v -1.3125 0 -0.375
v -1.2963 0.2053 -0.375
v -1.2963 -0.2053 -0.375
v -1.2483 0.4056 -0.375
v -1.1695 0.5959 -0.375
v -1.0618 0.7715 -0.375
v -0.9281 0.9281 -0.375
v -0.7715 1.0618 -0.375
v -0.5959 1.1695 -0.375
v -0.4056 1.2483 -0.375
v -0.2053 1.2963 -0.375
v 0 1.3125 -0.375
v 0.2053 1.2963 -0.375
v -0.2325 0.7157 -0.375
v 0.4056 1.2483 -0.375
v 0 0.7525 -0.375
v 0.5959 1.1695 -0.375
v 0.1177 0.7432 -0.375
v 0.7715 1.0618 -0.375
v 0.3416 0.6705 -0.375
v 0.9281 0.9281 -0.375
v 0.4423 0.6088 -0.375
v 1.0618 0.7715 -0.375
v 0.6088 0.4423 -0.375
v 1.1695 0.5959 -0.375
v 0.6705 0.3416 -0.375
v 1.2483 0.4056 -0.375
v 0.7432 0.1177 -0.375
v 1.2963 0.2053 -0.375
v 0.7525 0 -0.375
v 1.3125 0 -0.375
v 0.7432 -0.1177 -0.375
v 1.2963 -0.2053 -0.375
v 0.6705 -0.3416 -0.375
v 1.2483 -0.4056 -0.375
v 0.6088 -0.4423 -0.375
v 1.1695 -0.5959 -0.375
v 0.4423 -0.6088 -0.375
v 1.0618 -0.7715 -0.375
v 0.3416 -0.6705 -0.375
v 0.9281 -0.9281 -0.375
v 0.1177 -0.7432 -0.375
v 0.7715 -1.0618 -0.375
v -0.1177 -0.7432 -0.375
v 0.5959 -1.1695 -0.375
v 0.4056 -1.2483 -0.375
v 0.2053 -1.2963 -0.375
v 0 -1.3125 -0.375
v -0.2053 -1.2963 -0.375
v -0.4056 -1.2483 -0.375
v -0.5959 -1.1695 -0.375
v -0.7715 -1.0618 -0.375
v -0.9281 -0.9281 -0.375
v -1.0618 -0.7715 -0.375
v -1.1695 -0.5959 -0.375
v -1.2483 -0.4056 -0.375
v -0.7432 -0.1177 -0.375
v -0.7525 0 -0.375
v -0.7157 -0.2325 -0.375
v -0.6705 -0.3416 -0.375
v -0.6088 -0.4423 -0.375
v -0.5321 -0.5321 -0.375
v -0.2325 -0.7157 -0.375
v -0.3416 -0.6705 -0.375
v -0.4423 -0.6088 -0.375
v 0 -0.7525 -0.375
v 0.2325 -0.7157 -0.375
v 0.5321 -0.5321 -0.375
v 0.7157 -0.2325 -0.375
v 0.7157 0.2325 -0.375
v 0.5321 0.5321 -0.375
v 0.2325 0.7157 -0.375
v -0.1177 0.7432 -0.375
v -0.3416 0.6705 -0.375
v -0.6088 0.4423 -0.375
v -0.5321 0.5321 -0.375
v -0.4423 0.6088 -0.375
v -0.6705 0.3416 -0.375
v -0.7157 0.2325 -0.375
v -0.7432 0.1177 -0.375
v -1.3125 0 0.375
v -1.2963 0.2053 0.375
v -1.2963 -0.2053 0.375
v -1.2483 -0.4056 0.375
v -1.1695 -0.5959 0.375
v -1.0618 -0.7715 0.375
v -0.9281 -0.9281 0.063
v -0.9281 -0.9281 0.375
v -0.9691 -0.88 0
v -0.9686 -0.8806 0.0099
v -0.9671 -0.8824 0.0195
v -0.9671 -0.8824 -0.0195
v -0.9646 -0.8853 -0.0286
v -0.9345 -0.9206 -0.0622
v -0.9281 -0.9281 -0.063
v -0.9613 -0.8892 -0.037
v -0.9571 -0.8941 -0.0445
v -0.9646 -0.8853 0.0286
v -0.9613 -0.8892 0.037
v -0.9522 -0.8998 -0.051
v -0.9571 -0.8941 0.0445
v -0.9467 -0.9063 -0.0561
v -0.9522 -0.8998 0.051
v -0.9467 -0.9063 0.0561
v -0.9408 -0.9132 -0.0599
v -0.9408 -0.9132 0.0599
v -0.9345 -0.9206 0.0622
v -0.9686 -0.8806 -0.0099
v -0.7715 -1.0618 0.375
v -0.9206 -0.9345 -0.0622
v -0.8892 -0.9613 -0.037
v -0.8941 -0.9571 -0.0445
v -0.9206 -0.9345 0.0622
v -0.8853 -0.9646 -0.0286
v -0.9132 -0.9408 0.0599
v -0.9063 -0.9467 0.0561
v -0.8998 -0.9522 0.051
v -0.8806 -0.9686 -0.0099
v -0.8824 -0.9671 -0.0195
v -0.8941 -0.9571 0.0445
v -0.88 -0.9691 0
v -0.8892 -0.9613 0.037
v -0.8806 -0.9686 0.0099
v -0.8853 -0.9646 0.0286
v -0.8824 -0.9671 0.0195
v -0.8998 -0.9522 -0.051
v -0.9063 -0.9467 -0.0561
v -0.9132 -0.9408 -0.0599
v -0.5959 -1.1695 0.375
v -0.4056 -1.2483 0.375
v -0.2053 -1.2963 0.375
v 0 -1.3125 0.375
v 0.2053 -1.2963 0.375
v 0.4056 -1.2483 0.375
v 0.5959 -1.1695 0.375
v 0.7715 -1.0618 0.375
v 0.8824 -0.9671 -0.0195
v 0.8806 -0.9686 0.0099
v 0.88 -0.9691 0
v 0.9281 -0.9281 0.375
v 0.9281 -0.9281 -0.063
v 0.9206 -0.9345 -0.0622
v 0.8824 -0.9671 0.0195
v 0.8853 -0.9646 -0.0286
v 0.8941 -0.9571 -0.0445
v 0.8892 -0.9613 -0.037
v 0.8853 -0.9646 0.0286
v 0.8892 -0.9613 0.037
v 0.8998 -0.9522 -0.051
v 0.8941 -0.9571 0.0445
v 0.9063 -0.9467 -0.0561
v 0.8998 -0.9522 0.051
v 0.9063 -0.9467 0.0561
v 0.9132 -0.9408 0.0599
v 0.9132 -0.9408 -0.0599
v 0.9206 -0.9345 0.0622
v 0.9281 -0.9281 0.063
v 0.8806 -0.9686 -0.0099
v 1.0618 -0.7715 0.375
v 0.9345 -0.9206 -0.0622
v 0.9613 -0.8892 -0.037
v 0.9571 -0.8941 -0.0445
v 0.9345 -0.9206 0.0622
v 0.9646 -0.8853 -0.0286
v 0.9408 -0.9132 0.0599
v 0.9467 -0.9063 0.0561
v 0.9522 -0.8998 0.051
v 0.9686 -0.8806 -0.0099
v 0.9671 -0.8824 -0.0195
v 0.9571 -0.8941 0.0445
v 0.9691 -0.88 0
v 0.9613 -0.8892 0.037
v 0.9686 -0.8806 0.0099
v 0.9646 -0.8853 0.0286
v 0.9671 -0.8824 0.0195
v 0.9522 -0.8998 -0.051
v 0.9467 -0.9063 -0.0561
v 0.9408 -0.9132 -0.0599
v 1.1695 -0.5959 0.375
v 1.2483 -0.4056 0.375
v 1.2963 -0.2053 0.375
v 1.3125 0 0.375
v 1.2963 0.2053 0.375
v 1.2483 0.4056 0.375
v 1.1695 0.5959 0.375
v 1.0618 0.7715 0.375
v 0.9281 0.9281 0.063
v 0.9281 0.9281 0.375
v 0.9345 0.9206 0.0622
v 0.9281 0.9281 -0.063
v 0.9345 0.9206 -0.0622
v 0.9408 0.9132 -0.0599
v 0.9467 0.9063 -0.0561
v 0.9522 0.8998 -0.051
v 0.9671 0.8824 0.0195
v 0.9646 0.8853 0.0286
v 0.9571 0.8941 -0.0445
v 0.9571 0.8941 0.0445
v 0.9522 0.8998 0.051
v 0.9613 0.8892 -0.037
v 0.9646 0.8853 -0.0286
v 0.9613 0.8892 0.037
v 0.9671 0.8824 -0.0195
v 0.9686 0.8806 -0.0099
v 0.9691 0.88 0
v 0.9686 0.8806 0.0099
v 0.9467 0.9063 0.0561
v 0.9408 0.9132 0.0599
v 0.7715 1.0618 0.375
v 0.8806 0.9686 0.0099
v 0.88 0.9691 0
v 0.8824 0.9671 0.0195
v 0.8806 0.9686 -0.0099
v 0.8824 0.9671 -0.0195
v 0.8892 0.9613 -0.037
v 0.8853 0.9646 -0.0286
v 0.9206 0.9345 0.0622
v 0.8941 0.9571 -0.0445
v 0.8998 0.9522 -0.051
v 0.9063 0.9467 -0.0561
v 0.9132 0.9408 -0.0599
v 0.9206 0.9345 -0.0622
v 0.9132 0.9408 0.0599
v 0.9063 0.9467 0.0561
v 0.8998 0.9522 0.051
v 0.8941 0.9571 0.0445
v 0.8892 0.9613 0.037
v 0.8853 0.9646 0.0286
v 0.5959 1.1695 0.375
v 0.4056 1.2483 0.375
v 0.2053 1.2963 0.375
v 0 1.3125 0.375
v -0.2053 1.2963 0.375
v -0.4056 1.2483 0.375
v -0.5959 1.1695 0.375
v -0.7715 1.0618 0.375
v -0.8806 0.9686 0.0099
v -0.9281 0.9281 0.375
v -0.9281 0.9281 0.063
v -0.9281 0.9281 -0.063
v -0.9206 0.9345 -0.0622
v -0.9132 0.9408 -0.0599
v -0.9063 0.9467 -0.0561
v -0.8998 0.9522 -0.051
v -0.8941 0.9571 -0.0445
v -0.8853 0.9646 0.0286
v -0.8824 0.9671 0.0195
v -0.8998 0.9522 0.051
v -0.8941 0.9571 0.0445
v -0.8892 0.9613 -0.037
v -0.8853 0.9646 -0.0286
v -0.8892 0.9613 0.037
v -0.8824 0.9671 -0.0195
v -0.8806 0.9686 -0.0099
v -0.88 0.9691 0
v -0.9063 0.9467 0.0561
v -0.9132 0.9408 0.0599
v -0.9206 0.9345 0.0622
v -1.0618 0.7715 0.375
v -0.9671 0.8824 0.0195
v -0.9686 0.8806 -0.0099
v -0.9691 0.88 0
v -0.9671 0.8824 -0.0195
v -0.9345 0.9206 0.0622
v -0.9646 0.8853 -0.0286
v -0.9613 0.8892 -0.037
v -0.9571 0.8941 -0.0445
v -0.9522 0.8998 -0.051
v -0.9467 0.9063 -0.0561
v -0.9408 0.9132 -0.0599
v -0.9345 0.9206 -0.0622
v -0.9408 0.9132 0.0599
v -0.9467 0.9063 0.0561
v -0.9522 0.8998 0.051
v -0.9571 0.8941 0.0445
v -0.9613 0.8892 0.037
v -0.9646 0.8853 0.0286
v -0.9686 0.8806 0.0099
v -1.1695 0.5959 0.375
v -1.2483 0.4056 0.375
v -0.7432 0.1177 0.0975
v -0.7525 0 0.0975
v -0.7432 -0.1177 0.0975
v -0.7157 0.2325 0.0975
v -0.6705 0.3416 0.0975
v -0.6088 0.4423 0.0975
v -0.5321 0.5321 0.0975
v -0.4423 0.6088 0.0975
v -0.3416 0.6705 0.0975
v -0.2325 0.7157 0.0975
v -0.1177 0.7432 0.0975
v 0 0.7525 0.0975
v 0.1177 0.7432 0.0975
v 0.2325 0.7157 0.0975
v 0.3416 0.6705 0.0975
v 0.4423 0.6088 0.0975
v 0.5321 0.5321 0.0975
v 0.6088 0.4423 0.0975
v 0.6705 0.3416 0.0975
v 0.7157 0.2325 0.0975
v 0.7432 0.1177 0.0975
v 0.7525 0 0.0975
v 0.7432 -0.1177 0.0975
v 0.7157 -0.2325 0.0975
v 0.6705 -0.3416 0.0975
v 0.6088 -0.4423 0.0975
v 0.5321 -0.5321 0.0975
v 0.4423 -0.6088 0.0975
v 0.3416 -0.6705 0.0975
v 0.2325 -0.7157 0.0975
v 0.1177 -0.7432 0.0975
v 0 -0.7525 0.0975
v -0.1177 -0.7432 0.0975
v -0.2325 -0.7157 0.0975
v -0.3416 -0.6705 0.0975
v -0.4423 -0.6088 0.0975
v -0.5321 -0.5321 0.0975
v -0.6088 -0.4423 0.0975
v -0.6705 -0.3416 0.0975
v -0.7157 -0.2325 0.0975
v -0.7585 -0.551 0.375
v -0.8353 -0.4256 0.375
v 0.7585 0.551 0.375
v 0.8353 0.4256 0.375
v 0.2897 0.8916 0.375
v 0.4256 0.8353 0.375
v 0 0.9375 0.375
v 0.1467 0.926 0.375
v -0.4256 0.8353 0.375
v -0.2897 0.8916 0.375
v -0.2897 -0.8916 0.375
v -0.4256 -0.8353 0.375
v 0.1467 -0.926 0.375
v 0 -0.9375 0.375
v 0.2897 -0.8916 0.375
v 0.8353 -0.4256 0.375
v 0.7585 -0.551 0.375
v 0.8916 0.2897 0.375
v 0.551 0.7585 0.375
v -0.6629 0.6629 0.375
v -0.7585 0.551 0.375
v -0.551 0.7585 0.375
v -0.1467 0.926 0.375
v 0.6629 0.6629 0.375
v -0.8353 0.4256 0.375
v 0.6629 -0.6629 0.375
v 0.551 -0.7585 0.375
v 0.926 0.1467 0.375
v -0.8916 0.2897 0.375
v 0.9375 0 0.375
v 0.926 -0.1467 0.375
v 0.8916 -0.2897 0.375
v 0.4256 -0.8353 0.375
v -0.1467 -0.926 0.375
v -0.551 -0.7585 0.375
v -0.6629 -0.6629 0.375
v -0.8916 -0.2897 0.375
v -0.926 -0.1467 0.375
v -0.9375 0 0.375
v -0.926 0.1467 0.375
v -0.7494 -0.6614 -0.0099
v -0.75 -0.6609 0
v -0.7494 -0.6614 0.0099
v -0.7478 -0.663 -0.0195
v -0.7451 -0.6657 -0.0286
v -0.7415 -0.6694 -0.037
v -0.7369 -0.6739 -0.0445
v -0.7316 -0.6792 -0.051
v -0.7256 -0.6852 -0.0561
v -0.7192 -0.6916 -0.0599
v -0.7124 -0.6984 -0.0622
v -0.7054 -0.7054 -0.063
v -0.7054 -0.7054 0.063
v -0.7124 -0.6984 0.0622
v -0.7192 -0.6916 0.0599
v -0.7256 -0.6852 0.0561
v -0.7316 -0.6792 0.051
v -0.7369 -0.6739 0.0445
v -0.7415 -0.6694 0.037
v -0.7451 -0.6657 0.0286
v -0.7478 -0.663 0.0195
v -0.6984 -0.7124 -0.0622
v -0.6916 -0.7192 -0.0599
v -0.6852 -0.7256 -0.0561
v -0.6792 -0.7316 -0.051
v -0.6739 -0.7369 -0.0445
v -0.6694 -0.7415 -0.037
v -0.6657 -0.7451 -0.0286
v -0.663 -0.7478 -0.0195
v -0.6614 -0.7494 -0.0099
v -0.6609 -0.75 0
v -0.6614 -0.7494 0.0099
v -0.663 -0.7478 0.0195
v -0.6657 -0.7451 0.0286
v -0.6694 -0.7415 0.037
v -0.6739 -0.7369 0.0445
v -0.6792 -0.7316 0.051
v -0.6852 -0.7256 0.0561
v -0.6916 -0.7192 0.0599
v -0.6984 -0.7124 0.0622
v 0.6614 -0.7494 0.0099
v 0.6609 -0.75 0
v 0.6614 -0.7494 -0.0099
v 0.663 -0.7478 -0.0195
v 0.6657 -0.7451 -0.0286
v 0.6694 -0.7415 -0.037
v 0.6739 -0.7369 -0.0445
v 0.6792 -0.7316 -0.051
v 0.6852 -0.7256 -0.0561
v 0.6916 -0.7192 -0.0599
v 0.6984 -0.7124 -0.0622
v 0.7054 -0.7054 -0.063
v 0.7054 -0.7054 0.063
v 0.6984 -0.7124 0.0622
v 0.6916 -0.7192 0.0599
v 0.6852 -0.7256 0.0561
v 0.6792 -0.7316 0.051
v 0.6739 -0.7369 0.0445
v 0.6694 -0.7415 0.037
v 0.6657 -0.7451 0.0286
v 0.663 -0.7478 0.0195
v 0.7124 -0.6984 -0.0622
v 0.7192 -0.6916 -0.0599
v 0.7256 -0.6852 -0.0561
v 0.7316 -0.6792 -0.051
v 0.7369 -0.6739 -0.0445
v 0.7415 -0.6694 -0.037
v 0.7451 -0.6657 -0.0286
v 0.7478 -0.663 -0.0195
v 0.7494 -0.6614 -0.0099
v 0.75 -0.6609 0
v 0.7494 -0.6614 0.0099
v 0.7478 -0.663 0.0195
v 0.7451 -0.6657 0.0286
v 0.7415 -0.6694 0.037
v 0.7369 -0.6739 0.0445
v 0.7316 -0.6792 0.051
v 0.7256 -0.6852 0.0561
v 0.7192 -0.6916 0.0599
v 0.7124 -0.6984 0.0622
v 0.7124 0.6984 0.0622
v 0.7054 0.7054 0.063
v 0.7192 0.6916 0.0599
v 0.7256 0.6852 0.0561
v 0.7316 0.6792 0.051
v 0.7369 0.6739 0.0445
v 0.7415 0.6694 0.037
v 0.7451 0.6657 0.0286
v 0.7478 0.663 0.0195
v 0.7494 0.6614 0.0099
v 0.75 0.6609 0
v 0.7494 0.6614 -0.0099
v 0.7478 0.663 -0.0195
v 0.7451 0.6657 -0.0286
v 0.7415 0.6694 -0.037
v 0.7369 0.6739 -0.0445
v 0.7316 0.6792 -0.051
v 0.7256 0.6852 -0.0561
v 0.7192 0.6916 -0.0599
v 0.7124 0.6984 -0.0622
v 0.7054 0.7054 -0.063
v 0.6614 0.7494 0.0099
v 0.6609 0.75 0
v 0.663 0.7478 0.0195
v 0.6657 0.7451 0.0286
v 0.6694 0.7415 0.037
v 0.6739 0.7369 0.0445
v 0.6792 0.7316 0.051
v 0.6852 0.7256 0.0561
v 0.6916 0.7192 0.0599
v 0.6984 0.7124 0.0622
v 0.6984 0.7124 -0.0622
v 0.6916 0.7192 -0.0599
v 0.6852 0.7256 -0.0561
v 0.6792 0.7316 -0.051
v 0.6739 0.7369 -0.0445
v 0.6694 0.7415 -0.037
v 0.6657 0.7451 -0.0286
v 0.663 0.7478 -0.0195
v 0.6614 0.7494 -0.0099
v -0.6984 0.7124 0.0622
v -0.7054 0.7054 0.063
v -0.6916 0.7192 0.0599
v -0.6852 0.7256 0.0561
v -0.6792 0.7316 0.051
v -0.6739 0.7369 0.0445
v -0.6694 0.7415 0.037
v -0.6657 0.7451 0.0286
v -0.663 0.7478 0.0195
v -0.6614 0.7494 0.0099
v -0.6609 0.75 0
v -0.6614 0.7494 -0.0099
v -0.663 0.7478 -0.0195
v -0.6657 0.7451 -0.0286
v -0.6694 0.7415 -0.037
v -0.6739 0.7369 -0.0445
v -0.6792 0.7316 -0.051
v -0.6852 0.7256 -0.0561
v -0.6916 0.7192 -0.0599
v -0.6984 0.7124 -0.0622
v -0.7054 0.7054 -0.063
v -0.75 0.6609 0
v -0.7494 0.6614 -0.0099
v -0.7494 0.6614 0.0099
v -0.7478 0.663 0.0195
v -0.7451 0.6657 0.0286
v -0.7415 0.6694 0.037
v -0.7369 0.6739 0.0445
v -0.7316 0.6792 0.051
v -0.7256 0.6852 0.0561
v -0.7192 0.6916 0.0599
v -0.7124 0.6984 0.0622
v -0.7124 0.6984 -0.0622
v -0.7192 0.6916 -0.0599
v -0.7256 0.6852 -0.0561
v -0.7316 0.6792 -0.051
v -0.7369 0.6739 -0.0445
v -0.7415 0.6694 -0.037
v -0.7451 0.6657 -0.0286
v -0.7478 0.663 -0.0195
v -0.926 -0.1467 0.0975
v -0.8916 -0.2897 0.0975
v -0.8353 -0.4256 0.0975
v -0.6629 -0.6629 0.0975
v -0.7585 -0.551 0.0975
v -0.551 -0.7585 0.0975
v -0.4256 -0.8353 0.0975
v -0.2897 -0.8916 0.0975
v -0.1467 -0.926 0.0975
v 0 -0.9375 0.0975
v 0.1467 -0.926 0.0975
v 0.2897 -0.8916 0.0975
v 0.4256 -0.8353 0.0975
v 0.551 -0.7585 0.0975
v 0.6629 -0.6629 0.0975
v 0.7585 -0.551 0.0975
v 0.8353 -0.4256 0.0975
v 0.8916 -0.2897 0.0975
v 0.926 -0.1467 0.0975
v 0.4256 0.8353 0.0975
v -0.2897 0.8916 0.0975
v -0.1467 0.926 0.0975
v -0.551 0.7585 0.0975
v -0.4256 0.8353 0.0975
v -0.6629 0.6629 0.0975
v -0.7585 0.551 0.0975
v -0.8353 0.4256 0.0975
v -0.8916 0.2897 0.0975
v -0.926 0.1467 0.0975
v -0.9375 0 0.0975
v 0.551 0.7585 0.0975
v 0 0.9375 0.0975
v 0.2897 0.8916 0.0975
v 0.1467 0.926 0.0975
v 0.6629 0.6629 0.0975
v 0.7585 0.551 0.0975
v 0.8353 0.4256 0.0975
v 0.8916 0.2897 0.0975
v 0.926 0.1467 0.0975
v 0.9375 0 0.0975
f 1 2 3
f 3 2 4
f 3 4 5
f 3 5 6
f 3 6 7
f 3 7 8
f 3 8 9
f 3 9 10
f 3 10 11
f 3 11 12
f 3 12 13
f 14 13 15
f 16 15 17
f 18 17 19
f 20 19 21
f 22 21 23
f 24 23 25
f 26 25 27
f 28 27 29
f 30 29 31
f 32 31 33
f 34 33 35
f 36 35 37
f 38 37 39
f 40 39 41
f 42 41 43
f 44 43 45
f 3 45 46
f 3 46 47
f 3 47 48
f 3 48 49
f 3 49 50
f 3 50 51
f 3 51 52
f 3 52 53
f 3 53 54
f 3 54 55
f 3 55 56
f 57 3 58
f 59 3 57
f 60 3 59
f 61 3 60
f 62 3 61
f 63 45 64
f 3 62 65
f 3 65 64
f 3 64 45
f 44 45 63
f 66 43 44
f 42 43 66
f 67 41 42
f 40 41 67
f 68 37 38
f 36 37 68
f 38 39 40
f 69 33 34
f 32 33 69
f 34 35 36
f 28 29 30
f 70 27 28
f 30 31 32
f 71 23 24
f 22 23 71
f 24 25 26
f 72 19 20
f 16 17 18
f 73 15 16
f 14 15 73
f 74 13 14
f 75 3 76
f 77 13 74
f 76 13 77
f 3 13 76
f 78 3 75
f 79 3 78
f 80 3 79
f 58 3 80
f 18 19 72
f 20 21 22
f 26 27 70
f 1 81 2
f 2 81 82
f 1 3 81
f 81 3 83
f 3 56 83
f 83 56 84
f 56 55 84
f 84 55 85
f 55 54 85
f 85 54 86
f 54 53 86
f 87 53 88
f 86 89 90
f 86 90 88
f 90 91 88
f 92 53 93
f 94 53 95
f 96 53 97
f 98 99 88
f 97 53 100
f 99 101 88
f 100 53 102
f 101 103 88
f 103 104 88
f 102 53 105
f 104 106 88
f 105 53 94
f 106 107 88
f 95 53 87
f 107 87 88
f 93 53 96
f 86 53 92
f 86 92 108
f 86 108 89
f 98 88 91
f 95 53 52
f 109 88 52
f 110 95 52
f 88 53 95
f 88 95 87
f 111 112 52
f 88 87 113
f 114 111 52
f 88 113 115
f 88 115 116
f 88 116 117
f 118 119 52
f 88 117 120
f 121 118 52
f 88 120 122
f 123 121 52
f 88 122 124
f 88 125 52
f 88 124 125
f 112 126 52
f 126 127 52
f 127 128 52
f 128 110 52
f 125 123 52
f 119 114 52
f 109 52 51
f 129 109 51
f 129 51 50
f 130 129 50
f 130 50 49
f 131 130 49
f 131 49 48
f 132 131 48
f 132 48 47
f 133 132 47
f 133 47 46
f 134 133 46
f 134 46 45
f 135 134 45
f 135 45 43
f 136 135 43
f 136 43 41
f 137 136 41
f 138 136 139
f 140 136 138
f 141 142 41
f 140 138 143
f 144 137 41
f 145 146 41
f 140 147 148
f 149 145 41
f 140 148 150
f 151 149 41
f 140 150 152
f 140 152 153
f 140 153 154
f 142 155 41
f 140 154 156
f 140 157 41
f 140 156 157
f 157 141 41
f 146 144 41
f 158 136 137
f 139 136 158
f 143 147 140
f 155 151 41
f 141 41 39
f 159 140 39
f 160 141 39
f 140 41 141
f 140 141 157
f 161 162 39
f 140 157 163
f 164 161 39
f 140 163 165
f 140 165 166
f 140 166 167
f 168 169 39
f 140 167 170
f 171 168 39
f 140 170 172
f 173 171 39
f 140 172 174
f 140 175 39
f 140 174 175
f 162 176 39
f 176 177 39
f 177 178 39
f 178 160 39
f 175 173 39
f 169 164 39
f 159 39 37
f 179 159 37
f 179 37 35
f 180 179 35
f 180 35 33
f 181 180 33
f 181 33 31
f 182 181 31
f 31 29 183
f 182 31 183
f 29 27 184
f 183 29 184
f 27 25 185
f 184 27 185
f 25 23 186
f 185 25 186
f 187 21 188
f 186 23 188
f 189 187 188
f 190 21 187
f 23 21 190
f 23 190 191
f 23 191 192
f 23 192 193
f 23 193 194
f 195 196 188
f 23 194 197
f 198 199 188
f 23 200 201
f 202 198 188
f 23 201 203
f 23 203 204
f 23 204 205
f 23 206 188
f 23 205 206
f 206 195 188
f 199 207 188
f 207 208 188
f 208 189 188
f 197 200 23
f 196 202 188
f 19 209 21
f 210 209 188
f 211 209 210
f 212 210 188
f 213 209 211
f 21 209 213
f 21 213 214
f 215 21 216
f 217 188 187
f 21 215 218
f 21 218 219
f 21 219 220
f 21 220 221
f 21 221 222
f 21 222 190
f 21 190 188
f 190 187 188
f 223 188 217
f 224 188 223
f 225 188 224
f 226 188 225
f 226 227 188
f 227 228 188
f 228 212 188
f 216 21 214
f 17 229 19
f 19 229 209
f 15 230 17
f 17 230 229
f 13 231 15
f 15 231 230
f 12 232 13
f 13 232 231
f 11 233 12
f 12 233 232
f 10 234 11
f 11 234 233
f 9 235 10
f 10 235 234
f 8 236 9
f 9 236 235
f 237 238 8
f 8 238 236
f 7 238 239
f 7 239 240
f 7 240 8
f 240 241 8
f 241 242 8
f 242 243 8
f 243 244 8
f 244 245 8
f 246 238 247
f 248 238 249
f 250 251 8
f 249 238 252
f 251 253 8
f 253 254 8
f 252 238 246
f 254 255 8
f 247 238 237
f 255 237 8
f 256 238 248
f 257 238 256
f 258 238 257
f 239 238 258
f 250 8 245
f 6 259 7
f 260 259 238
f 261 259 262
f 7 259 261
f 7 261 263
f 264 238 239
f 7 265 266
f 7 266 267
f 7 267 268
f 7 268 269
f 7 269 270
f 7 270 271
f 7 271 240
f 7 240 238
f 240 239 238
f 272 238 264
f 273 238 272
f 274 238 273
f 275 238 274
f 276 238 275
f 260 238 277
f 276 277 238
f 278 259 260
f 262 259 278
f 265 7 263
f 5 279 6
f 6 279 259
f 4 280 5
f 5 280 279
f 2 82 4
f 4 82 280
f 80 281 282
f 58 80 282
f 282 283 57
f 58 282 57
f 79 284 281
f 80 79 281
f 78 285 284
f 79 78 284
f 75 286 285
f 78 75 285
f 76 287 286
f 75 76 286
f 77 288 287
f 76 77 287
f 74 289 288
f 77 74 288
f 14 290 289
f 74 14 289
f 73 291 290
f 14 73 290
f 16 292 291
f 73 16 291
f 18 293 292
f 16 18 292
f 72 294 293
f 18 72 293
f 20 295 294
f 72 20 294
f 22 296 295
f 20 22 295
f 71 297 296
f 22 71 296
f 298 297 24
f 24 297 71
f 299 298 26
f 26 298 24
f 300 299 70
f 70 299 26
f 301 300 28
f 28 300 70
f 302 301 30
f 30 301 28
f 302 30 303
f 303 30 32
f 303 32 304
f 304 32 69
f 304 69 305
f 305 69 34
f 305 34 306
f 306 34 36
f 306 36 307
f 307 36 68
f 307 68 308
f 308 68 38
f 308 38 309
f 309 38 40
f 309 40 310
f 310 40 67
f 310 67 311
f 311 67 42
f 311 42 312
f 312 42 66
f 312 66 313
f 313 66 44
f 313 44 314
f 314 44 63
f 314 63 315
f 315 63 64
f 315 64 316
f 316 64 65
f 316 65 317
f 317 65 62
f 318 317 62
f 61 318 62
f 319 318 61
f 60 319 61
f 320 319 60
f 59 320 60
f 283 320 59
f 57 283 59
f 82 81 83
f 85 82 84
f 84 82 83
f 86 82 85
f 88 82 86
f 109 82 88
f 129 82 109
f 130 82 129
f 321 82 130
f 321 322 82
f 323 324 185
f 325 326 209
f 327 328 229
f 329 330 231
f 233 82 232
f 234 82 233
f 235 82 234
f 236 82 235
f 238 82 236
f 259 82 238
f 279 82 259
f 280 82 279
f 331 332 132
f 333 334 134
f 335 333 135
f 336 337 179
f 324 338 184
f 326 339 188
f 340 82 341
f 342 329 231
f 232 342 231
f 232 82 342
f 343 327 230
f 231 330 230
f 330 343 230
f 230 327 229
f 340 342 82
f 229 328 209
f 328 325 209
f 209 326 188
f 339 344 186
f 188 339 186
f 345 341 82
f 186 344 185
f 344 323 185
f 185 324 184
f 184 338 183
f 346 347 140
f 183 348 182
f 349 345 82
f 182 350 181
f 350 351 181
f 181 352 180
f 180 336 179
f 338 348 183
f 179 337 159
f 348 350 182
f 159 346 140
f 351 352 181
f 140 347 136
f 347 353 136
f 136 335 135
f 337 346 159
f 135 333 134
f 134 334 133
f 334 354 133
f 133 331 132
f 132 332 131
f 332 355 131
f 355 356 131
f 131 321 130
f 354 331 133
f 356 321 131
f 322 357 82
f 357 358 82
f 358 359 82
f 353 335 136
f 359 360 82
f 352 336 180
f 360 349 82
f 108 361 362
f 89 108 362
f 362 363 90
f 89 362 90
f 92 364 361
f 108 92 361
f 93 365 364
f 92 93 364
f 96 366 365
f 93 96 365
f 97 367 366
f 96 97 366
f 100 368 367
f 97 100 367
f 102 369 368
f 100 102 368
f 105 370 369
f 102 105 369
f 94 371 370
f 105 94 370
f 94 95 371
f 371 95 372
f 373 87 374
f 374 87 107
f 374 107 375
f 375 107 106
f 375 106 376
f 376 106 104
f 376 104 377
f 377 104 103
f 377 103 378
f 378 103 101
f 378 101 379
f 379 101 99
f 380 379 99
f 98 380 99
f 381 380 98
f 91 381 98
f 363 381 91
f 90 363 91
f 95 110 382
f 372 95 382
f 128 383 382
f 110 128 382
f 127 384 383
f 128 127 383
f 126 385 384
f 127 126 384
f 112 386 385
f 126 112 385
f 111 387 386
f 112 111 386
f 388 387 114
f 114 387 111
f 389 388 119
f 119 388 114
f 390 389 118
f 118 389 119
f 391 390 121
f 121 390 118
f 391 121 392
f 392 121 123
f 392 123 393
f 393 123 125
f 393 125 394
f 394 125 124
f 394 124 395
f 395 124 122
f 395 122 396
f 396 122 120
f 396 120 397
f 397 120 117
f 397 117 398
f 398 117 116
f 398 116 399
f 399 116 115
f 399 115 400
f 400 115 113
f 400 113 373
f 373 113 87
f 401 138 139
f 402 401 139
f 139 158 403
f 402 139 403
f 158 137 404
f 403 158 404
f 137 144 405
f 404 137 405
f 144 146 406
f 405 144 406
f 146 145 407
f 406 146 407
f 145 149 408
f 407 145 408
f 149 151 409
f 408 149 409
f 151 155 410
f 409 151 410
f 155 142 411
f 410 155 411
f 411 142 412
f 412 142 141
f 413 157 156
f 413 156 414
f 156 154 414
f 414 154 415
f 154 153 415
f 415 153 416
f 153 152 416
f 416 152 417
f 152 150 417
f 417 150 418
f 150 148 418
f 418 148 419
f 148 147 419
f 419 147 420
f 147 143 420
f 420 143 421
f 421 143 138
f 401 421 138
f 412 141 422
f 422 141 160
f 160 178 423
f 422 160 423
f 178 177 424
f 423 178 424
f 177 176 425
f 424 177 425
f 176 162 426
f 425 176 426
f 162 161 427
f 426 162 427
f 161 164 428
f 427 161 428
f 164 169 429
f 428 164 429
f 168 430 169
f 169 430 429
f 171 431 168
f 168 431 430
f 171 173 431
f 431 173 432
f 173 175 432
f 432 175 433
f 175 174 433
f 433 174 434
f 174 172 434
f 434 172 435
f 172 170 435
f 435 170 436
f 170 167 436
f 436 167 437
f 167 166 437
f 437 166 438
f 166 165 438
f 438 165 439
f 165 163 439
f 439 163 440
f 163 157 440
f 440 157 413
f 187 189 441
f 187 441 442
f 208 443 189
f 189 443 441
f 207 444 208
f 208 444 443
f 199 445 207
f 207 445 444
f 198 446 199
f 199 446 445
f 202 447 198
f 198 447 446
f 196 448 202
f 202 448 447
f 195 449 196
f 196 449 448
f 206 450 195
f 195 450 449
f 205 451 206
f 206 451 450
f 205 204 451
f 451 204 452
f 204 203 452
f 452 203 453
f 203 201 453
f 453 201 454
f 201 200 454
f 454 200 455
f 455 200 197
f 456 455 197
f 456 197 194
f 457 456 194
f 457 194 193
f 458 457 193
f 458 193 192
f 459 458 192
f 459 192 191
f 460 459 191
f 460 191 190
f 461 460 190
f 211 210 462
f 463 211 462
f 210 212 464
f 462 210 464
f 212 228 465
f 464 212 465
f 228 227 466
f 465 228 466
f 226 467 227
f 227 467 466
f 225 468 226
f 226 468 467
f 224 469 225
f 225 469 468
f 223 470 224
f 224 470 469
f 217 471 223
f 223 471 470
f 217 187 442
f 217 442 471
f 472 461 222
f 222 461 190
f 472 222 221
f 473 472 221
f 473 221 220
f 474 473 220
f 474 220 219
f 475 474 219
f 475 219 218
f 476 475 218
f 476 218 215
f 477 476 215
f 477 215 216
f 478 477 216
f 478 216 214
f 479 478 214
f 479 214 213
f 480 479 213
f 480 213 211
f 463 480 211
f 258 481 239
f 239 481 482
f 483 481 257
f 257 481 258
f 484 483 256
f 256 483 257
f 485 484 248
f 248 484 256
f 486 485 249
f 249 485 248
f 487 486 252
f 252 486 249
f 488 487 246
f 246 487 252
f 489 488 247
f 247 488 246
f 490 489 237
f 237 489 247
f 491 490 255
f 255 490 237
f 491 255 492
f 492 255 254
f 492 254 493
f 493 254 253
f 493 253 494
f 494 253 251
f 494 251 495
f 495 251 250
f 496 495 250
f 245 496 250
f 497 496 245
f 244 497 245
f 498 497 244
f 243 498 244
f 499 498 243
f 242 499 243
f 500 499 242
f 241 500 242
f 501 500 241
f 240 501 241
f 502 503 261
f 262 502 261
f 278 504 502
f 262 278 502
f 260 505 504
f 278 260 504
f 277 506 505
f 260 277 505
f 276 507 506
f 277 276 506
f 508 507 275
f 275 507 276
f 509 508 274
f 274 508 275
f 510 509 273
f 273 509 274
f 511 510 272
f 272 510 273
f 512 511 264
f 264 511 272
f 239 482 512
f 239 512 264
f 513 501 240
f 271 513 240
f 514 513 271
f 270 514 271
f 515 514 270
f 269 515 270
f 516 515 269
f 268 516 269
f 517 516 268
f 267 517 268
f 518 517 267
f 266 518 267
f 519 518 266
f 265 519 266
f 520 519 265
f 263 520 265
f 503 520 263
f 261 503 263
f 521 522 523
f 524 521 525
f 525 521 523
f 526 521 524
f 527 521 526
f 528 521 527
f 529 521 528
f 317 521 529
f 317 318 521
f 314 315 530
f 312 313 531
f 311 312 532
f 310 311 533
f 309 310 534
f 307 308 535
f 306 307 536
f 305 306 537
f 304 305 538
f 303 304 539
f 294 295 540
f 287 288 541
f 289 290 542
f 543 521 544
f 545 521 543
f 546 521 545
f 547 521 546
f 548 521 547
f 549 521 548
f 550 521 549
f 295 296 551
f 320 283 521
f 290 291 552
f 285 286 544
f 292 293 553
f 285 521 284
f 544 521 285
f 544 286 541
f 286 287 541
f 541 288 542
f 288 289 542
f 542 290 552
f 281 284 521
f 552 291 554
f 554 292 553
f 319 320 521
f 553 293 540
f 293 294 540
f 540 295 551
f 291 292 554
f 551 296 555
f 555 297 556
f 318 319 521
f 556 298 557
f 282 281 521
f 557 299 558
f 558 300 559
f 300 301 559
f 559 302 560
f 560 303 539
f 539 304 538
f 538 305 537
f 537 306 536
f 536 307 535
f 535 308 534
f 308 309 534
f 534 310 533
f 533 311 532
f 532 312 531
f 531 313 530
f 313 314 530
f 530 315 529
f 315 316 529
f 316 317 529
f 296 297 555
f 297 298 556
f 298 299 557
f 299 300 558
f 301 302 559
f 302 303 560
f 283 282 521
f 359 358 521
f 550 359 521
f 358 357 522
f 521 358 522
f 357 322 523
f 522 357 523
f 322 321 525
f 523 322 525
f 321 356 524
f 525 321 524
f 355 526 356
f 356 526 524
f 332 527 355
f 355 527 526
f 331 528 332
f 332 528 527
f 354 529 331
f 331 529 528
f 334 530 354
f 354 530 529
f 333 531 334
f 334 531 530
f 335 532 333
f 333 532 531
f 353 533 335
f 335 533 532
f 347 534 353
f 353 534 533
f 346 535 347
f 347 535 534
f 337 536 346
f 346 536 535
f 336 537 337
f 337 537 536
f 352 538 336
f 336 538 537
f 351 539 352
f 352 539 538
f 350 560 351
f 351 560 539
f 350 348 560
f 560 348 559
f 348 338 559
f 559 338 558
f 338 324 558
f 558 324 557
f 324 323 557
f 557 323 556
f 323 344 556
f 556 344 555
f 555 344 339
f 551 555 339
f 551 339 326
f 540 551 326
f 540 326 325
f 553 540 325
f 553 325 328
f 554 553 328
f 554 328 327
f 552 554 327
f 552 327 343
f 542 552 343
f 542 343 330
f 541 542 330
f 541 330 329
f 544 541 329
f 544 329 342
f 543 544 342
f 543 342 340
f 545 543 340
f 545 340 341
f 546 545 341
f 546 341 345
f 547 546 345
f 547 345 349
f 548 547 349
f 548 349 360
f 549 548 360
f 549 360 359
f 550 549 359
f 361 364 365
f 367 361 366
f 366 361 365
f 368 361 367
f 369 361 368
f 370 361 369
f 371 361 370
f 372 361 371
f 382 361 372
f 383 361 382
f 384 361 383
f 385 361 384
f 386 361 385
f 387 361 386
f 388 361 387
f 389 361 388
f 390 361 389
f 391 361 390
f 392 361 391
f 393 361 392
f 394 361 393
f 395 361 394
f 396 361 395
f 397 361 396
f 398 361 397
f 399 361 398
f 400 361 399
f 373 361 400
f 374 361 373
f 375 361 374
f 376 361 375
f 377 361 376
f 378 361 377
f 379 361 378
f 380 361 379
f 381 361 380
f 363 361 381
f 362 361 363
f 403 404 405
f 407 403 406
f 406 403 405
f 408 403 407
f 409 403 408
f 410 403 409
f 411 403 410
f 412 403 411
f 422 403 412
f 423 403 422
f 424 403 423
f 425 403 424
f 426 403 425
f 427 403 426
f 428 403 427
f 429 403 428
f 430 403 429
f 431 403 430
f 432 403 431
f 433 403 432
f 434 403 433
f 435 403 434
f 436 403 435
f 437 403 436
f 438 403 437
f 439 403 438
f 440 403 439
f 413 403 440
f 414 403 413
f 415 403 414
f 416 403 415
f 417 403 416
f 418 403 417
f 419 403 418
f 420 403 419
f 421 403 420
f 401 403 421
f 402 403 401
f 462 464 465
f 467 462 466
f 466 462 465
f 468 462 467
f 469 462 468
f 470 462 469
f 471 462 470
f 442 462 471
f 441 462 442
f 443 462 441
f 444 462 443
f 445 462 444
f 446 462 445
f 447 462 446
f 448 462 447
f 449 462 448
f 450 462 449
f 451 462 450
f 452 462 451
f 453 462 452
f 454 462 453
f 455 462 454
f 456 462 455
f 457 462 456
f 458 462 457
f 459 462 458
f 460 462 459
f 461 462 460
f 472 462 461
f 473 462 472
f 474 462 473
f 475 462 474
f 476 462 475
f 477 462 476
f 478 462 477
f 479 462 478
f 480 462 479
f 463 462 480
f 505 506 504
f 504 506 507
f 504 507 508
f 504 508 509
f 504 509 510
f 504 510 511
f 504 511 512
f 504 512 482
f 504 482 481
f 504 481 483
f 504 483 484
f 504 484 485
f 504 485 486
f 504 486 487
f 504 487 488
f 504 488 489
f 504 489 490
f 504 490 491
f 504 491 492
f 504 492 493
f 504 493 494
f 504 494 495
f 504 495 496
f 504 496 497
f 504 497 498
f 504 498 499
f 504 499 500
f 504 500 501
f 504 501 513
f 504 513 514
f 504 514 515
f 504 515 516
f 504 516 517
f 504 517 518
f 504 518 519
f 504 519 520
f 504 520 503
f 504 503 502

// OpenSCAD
// file: mast.scad
/*
 * Antenna Rotator 16 kg-m
 * Copyright 2012 John Pritchard
 *
 * This program is free software: you can redistribute it and/or modify
 * it under the terms of the GNU General Public License as published by
 * the Free Software Foundation, either version 3 of the License, or
 * (at your option) any later version.
 *
 * This program is distributed in the hope that it will be useful,
 * but WITHOUT ANY WARRANTY; without even the implied warranty of
 * MERCHANTABILITY or FITNESS FOR A PARTICULAR PURPOSE.  See the
 * GNU General Public License for more details.
 *
 * You should have received a copy of the GNU General Public License
 * along with this program.  If not, see <http://www.gnu.org/licenses/>.
 */

/*
 * units = inches
 */


mast_bearing_height = 0.42;

/*
 * LM67048 Tapered Bearing and L44610 Cup: 1.25 ID, 1.98 OD
 */
module mast_bearing(){
	difference(){
		cylinder(r = 0.990, h = mast_bearing_height, center = true, $fn = resolution);
		cylinder(r = 0.625, h = mast_bearing_height, center = true, $fn = resolution);
	}
}

mast_block_height = 0.75;

/*
 * Turn 2" Round 6061 to (2.0-mechtol) OD
 */
module mast_block(){
	/*
	 * TODO 
	 */
	cylinder(r = (2.0-mechtol)/2, h = mast_block_height, center = true, $fn = resolution);
}
// file: head.scad
/*
 * Antenna Rotator 16 kg-m
 * Copyright 2012 John Pritchard
 *
 * This program is free software: you can redistribute it and/or modify
 * it under the terms of the GNU General Public License as published by
 * the Free Software Foundation, either version 3 of the License, or
 * (at your option) any later version.
 *
 * This program is distributed in the hope that it will be useful,
 * but WITHOUT ANY WARRANTY; without even the implied warranty of
 * MERCHANTABILITY or FITNESS FOR A PARTICULAR PURPOSE.  See the
 * GNU General Public License for more details.
 *
 * You should have received a copy of the GNU General Public License
 * along with this program.  If not, see <http://www.gnu.org/licenses/>.
 */

/*
 * units = inches
 */

head_bearing_height = 0.5625;

head_block_od = 2.625;

head_block_height = 0.75;

head_block_gearmotor_clearance = 0.1;

head_bearing_spacer_height = 1.5;

head_tube_od = 3.0;

head_tube_id = 2.625;

head_tube_height = (7.87+head_block_height-head_block_gearmotor_clearance);

head_tube_offset = -((head_tube_height/2)-((head_block_height)+(head_bearing_spacer_height/2)+(head_bearing_height)+(2*mechtol)));

head_block_support_offset = -((head_block_height/2)+(gearmotor_body_height-(2*head_block_gearmotor_clearance))+(head_block_height)+(head_bearing_spacer_height/2)+(head_bearing_height)+(2*mechtol));

head_block_mount_offset = -((head_block_height/2)+(head_bearing_spacer_height/2)+(head_bearing_height)+(2*mechtol));

head_bearing_offset = ((head_bearing_spacer_height/2)+(head_bearing_height/2)+mechtol);

head_block_shaft_offset = ((head_block_height/2)+(head_bearing_spacer_height/2)+(head_bearing_height)+(2*mechtol));

echo("head tube height",head_tube_height);
echo("head tube offset",head_tube_offset);
echo("head block support offset",head_block_support_offset);
echo("head block mount offset",head_block_mount_offset);
echo("head bearing offset",head_bearing_offset);
echo("head block shaft offset",head_block_shaft_offset);

/*
 * R24-2RS Radial Bearing: 1.5 ID, 2.625 OD, 0.5625 H
 */
module head_bearing(){
	difference(){
		cylinder(r = (2.625/2), h = head_bearing_height, center = true, $fn = resolution);
		cylinder(r = (1.5/2), h = head_bearing_height, center = true, $fn = resolution);
	}
}

/*
 * Turn 3" Round 6061 to 2.625 OD
 */
module head_block(){

	cylinder(r = head_block_od/2, h = head_block_height, center = true, $fn = resolution);
}
/*
 * Secondary (outboard) motor mount
 */
module head_block_support(){
	difference(){
		head_block();
		translate([0,0,+(head_block_height/2)-(head_block_gearmotor_clearance/2)]){
			/*
			 * gearmotor body clearance
			 */
			gearmotor_body((gearmotor_body_radius+mechtol), head_block_gearmotor_clearance);
		}
		head_block_mount_taps();
	}
}
/*
 * Primary (inboard) motor mount
 */
module head_block_mount(){
	difference(){
		head_block();
		gearmotor_mount(head_block_height);
		translate([0,0,-(head_block_height/2)+(head_block_gearmotor_clearance/2)]){
			/*
			 * gearmotor body clearance: maximize mount strength
			 */
			gearmotor_body((gearmotor_body_radius+mechtol), head_block_gearmotor_clearance);
		}
		translate([0,0,+(head_block_height/2)-0.125]){
			/*
			 * Embedded axle clearance
			 */
			cylinder(r = (1.5+(2*mechtol))/2, h = 0.25, center = true, $fn = resolution);
			/*
			 * Mount bolt head clearance 
			 * M4 ALLEN DIN 912
			 * Head Height 4 mm, 0.1575 in; Diameter 7 mm, 0.2756 in
			 *
			 * Flat Washer
			 * Diameter 9mm, 0.3543 in; Height = 0.8 mm, 0.0315 in
			 */
			fastener_m4_mount_tapped(depth = 0.25, expansion = 0.1771);
		}
		translate([0,0,+(head_block_height/2)-0.25-(0.189/2)]){
			/*
			 * Mount bolt head sink 
			 * M4 ALLEN DIN 912 Head + Flat Washer (4 + 0.8 mm)
			 */
			fastener_m4_mount_tapped(depth = 0.189, expansion = 0.1771);
		}
		head_block_mount_taps();
	}
}
/*
 * M4 taps with 10 mm depth
 * Minimal interior wall at gearmotor body clearance (diagonal)
 */
module head_block_mount_taps(depth = 0.3937){

	translate([0,0,-0.07]){

		fastener_m4_round_taps( head_block_od, depth);
	}
}
module head_block_mount_countersinks(){

	translate([0,0,-0.07]){

		fastener_m4_tube_countersinks( head_tube_od);
	}
}
/*
 * M4 taps with 8 mm depth
 * Minimal interior wall at gearmotor body clearance (diagonal)
 */
module head_block_shaft_taps(depth = 0.3149){

	fastener_m4_round_taps( head_block_od, depth);
}
module head_block_shaft_countersinks(){

    fastener_m4_tube_countersinks( head_tube_od);
}
/*
 * TR-023 Hydraulic Rod T-Seal Buna-N
 * 1.5" ID x 1.875" OD x 0.28" H
 */
module head_block_shaft_tseal(){

	translate([0,0,(head_block_height-0.28+mechtol)/2]){

		cylinder(r = 0.9375, h = 0.28, center = true, $fn = resolution);
	}
}
module head_block_shaft(){

	difference(){
		head_block();
		cylinder(r = (1.5+mechtol)/2, h = head_block_height, center = true, $fn = resolution);
		head_block_shaft_taps();
		head_block_shaft_tseal();
	}
}
/*
 * Tube 6061 3.0 OD, 2.625 ID, Wall 0.1875 in
 */
module head_tube(){
	difference(){

		translate([0,0,head_tube_offset]){
			difference(){
				cylinder(r = (head_tube_od/2), h = head_tube_height, center = true, $fn = resolution);
				cylinder(r = (head_tube_id/2), h = head_tube_height, center = true, $fn = resolution);
			}
		}

		head_tube_countersinks();
	}
}
module head_tube_countersinks(){

	translate([0,0,head_block_support_offset]){
		head_block_mount_countersinks();
	}
	translate([0,0,head_block_mount_offset]){
		head_block_mount_countersinks();
	}
	translate([0,0,head_block_shaft_offset]){
		head_block_shaft_countersinks();
	}
}
/*
 * Tube 6061 2.75 OD, 0.25 Wall turned to Head Block OD 2.625 in
 */
module head_bearing_spacer(){
	difference(){
		cylinder(r = head_block_od/2, h = head_bearing_spacer_height, center = true, $fn = resolution);
		cylinder(r = (2.25/2), h = head_bearing_spacer_height, center = true, $fn = resolution);
	}
}
/*
 * gearmotor in head -- vertical rotator
 */
module head_motor(){
	assign(offset = -((gearmotor_body_height/2)+(head_block_height-head_block_gearmotor_clearance)+(head_bearing_spacer_height/2)+(head_bearing_height)+(3*mechtol))){
		echo("gearmotor offset",offset);
		translate([0,0,offset]){
			gearmotor();
		}
	}
}
/*
 * Blocks, Bearings, and Spacer
 */
module head_internal(){

	translate([0,0,head_block_support_offset]){
		head_block_support();
	}
	translate([0,0,head_block_mount_offset]){
		head_block_mount();
	}
	translate([0,0,-head_bearing_offset]){
		head_bearing();
	}
	translate([0,0,0]){
		head_bearing_spacer();
	}
	translate([0,0,head_bearing_offset]){
		head_bearing();
	}
	translate([0,0,head_block_shaft_offset]){
		head_block_shaft();
	}
}
module head(){
	head_internal();
    % head_motor();
	head_tube();
}
// file: gearmotor.scad
/*
 * Antenna Rotator 16 kg-m
 * Copyright 2012 John Pritchard
 *
 * This program is free software: you can redistribute it and/or modify
 * it under the terms of the GNU General Public License as published by
 * the Free Software Foundation, either version 3 of the License, or
 * (at your option) any later version.
 *
 * This program is distributed in the hope that it will be useful,
 * but WITHOUT ANY WARRANTY; without even the implied warranty of
 * MERCHANTABILITY or FITNESS FOR A PARTICULAR PURPOSE.  See the
 * GNU General Public License for more details.
 *
 * You should have received a copy of the GNU General Public License
 * along with this program.  If not, see <http://www.gnu.org/licenses/>.
 */

/*
 * units = inches
 * 
 * External constants
 * 
 * resolution: 10 is low, 100 is high
 *
 * mechtol: mechanical tolerance
 */

gearmotor_body_radius = 0.8366;
gearmotor_body_height = 3.819;

/*
 * Brushless motor with planetary gearhead, 
 * drive control, position encoder, brake:
 * 24V, 2A, 500:1, 15.6 kg-m, 8 rpm;
 * http://www.aliexpress.com/store/product/explosion-proof-DC-servo-Brushless-gear-motor-micro-planetary-gearbox-gear-reducer-156kg-cm-hight-torque/506137_516569606.html
 */
module gearmotor(){
	difference(){
		union(){

			gearmotor_body();
			/*
			 * Mount plane from center
			 */
			translate([0,0,1.9095]){

				gearmotor_mount_shoulder(gearmotor_mount_shoulder_height,(gearmotor_mount_shoulder_height/2));

				gearmotor_output_shaft();
			}
			/*
			 * Electrical connector, a space filling model
			 * for the bounds [20,2.75,6] mm
			 */
			translate([0,-gearmotor_body_radius,-1.339]){
				cube(size = [0.7874,0.2166,0.2362], center = true);
			}
		}
		fastener_m4_mount_tapped(0.5,1.9095);
	}
}
/*
 * Main body volume
 */
module gearmotor_body(radius = gearmotor_body_radius, height = gearmotor_body_height){
	cylinder( r = radius, h = height, center = true, $fn = resolution);
}
/*
 * Output shaft
 * Translated for half of height, centered
 */
module gearmotor_output_shaft(length = 0.787){

	translate([0,0,(length/2)]){
		cylinder(r = 0.2362, length, center = true, $fn = resolution);
	}
}

gearmotor_mount_shoulder_radius = 0.4724;
gearmotor_mount_shoulder_height = 0.106;

/*
 * Mount shoulder
 * Translated for half of height, centered
 */
module gearmotor_mount_shoulder(height = gearmotor_mount_shoulder_height, offset = 0){

	translate([0,0,offset]){
		cylinder(r = gearmotor_mount_shoulder_radius, height, center = true, $fn = resolution);
	}
}
/*
 * Motor mounting in the mount plane: shoulder and tap holes
 */
module gearmotor_mount(depth,offset = 0){
	gearmotor_mount_shoulder(depth,offset);
	fastener_m4_mount_tapped(depth,offset);
}
// file: fasteners.scad
/*
 * Antenna Rotator 16 kg-m
 * Copyright 2012 John Pritchard
 *
 * This program is free software: you can redistribute it and/or modify
 * it under the terms of the GNU General Public License as published by
 * the Free Software Foundation, either version 3 of the License, or
 * (at your option) any later version.
 *
 * This program is distributed in the hope that it will be useful,
 * but WITHOUT ANY WARRANTY; without even the implied warranty of
 * MERCHANTABILITY or FITNESS FOR A PARTICULAR PURPOSE.  See the
 * GNU General Public License for more details.
 *
 * You should have received a copy of the GNU General Public License
 * along with this program.  If not, see <http://www.gnu.org/licenses/>.
 */

/*
 * units = inches
 */

/*
 * M4 Hole represented as the thread depth OD
 */
module fastener_m4_tapped(depth = 0.5, expansion = 0){

	cylinder(r = 0.0787+expansion, depth, center = true, $fn = resolution);
}
/*
 * 4 x M4 Holes in motor mount
 * 
 * M4 ALLEN DIN 912 Head + Flat Washer (4 + 0.8 mm): depth = 0.189, expansion = 0.1771
 * 
 * M4 ALLEN DIN 912
 * Head Height 4 mm, 0.1575 in; Diameter 7 mm, 0.2756 in
 *
 * Flat Washer
 * Diameter 9mm, 0.3543 in; Height = 0.8 mm, 0.0315 in: depth = 0.25, expansion = 0.1771
 */
module fastener_m4_mount_tapped(depth = 0.5, offset = 0, expansion = 0){

	for (theta = [0 : 90: 300] ){
		/*
		 * translate to the mount plane and hole center
		 * for a representative space.
		 */
		translate([0.6693*sin(theta),0.6693*cos(theta),offset]){

			fastener_m4_tapped(depth,expansion);
		}
	}
}
/*
 * M4 Tap Hole ID 3.2 mm; 0.126 in; IR = 0.063 in
 */
module fastener_m4_tap(depth){

	cylinder(r = 0.063, h = depth, center = true, $fn = resolution);
	/*
	 * Cube test of minimal wall dimension
	 * 
	 * If this passes with no intersections, then the volume is safe.  
	 * A reasonable depth (min 8 mm) is always much greater than the 
	 * radius (nom 3.2 mm), providing some initial information about
	 * the interior wall dimensions.
	 * 
	 * The ideal version of this would be a torus centered on the 
	 * interior edge of the cylinder, with the plane of the extent of
	 * the depth of the torus, and the cylinder of the extent of the 
	 * radius of the torus.
	 * 
	cube(size = depth, center = true, $fn = 40);
	 */
}
/*
 * 4 x M4 Tap Holes with Depth on Round OD
 */
module fastener_m4_round_taps(od, depth){

	assign(radius = (od/2)-(depth/2)){

		for (rot = [45: 90: 360]){
	
			translate([(radius*sin(rot)),(radius*cos(rot)),0]){

				rotate([0,90,rot]){

					fastener_m4_tap(depth);
				}
			}
		}
	}
}

/*
 * M4 Counter Sunk Head
 * 
 * Centered in wall with indent.
 * 
 * Indent is not a mechanical figure, but is employed for
 * positive curve intersections in tube walls.  Mechanically
 * the top of the countersink triangle is on the lowest sides
 * (the saddle) of the intersection of the walled tube and
 * the "triangular" countersink cylinder.
 */
module fastener_m4_countersink(wall = 0.1875, indent = 0.1, debug = false){

	del = (wall-0.0976);
    ctr = (del/2);

	union(){
		translate([0,0,+((indent/2)+(0.0976/2)+ctr)]){

			cylinder( r = (0.3508/2), h = indent, center = true, $fn = resolution);
		}
		translate([0,0,ctr]){
			cylinder( r1 = (0.1575/2), r2 = (0.3508/2), h = 0.0976, center = true, $fn = resolution);
		}
		translate([0,0,(ctr-(0.0976/2)-(del/2))]){

			cylinder( r = (0.1575/2), h = (del+indent), center = true, $fn = resolution);
		}
	}
	if (debug){
		translate([-(wall),0,-(wall/2)]){

			cube( size = [(2*wall),(2*wall),wall], center = false);
		}
	}
}
/*
 * 4 x M4 Counter Sunk Heads on Tube OD
 */
module fastener_m4_tube_countersinks(od = 3.0, wall = 0.1875){

	assign(radius = ((od/2)-0.09375)){

		_fastener_m4_tube_countersinks_F_(wall,radius,45);
		_fastener_m4_tube_countersinks_R_(wall,radius,135);
		_fastener_m4_tube_countersinks_F_(wall,radius,225);
		_fastener_m4_tube_countersinks_R_(wall,radius,315);
	}
}
module _fastener_m4_tube_countersinks_F_(wall, radius, rot){
	translate([(radius*sin(rot)),(radius*cos(rot)),0]){
		rotate([0,90,rot]){
			fastener_m4_countersink(wall);
		}
	}
}
module _fastener_m4_tube_countersinks_R_(wall, radius, rot){
	translate([(radius*sin(rot)),(radius*cos(rot)),0]){
		rotate([0,-90,rot]){
			fastener_m4_countersink(wall);
		}
	}
}
// file: constants.scad
/*
 * Antenna Rotator 16 kg-m
 * Copyright 2012 John Pritchard
 *
 * This program is free software: you can redistribute it and/or modify
 * it under the terms of the GNU General Public License as published by
 * the Free Software Foundation, either version 3 of the License, or
 * (at your option) any later version.
 *
 * This program is distributed in the hope that it will be useful,
 * but WITHOUT ANY WARRANTY; without even the implied warranty of
 * MERCHANTABILITY or FITNESS FOR A PARTICULAR PURPOSE.  See the
 * GNU General Public License for more details.
 *
 * You should have received a copy of the GNU General Public License
 * along with this program.  If not, see <http://www.gnu.org/licenses/>.
 */

/*
 * units = inches
 */

/*
 * model resolution: 10 is low, 100 is high
 */
resolution = 40;
/*
 * mechanical tolerance, separation of fit:
 * applied to diameter of cylinder, side of cube
 */
mechtol = 0.005;
// main file
/*
 * Antenna Rotator 16 kg-m
 * Copyright 2012 John Pritchard
 *
 * This program is free software: you can redistribute it and/or modify
 * it under the terms of the GNU General Public License as published by
 * the Free Software Foundation, either version 3 of the License, or
 * (at your option) any later version.
 *
 * This program is distributed in the hope that it will be useful,
 * but WITHOUT ANY WARRANTY; without even the implied warranty of
 * MERCHANTABILITY or FITNESS FOR A PARTICULAR PURPOSE.  See the
 * GNU General Public License for more details.
 *
 * You should have received a copy of the GNU General Public License
 * along with this program.  If not, see <http://www.gnu.org/licenses/>.
 */


/*
 * employ "include", not "use", so the resolution and 
 * tolerance constants are shared
 */
include <constants.scad>;
include <fasteners.scad>;
include <gearmotor.scad>;
include <head.scad>;
include <mast.scad>;


head_block_shaft();
